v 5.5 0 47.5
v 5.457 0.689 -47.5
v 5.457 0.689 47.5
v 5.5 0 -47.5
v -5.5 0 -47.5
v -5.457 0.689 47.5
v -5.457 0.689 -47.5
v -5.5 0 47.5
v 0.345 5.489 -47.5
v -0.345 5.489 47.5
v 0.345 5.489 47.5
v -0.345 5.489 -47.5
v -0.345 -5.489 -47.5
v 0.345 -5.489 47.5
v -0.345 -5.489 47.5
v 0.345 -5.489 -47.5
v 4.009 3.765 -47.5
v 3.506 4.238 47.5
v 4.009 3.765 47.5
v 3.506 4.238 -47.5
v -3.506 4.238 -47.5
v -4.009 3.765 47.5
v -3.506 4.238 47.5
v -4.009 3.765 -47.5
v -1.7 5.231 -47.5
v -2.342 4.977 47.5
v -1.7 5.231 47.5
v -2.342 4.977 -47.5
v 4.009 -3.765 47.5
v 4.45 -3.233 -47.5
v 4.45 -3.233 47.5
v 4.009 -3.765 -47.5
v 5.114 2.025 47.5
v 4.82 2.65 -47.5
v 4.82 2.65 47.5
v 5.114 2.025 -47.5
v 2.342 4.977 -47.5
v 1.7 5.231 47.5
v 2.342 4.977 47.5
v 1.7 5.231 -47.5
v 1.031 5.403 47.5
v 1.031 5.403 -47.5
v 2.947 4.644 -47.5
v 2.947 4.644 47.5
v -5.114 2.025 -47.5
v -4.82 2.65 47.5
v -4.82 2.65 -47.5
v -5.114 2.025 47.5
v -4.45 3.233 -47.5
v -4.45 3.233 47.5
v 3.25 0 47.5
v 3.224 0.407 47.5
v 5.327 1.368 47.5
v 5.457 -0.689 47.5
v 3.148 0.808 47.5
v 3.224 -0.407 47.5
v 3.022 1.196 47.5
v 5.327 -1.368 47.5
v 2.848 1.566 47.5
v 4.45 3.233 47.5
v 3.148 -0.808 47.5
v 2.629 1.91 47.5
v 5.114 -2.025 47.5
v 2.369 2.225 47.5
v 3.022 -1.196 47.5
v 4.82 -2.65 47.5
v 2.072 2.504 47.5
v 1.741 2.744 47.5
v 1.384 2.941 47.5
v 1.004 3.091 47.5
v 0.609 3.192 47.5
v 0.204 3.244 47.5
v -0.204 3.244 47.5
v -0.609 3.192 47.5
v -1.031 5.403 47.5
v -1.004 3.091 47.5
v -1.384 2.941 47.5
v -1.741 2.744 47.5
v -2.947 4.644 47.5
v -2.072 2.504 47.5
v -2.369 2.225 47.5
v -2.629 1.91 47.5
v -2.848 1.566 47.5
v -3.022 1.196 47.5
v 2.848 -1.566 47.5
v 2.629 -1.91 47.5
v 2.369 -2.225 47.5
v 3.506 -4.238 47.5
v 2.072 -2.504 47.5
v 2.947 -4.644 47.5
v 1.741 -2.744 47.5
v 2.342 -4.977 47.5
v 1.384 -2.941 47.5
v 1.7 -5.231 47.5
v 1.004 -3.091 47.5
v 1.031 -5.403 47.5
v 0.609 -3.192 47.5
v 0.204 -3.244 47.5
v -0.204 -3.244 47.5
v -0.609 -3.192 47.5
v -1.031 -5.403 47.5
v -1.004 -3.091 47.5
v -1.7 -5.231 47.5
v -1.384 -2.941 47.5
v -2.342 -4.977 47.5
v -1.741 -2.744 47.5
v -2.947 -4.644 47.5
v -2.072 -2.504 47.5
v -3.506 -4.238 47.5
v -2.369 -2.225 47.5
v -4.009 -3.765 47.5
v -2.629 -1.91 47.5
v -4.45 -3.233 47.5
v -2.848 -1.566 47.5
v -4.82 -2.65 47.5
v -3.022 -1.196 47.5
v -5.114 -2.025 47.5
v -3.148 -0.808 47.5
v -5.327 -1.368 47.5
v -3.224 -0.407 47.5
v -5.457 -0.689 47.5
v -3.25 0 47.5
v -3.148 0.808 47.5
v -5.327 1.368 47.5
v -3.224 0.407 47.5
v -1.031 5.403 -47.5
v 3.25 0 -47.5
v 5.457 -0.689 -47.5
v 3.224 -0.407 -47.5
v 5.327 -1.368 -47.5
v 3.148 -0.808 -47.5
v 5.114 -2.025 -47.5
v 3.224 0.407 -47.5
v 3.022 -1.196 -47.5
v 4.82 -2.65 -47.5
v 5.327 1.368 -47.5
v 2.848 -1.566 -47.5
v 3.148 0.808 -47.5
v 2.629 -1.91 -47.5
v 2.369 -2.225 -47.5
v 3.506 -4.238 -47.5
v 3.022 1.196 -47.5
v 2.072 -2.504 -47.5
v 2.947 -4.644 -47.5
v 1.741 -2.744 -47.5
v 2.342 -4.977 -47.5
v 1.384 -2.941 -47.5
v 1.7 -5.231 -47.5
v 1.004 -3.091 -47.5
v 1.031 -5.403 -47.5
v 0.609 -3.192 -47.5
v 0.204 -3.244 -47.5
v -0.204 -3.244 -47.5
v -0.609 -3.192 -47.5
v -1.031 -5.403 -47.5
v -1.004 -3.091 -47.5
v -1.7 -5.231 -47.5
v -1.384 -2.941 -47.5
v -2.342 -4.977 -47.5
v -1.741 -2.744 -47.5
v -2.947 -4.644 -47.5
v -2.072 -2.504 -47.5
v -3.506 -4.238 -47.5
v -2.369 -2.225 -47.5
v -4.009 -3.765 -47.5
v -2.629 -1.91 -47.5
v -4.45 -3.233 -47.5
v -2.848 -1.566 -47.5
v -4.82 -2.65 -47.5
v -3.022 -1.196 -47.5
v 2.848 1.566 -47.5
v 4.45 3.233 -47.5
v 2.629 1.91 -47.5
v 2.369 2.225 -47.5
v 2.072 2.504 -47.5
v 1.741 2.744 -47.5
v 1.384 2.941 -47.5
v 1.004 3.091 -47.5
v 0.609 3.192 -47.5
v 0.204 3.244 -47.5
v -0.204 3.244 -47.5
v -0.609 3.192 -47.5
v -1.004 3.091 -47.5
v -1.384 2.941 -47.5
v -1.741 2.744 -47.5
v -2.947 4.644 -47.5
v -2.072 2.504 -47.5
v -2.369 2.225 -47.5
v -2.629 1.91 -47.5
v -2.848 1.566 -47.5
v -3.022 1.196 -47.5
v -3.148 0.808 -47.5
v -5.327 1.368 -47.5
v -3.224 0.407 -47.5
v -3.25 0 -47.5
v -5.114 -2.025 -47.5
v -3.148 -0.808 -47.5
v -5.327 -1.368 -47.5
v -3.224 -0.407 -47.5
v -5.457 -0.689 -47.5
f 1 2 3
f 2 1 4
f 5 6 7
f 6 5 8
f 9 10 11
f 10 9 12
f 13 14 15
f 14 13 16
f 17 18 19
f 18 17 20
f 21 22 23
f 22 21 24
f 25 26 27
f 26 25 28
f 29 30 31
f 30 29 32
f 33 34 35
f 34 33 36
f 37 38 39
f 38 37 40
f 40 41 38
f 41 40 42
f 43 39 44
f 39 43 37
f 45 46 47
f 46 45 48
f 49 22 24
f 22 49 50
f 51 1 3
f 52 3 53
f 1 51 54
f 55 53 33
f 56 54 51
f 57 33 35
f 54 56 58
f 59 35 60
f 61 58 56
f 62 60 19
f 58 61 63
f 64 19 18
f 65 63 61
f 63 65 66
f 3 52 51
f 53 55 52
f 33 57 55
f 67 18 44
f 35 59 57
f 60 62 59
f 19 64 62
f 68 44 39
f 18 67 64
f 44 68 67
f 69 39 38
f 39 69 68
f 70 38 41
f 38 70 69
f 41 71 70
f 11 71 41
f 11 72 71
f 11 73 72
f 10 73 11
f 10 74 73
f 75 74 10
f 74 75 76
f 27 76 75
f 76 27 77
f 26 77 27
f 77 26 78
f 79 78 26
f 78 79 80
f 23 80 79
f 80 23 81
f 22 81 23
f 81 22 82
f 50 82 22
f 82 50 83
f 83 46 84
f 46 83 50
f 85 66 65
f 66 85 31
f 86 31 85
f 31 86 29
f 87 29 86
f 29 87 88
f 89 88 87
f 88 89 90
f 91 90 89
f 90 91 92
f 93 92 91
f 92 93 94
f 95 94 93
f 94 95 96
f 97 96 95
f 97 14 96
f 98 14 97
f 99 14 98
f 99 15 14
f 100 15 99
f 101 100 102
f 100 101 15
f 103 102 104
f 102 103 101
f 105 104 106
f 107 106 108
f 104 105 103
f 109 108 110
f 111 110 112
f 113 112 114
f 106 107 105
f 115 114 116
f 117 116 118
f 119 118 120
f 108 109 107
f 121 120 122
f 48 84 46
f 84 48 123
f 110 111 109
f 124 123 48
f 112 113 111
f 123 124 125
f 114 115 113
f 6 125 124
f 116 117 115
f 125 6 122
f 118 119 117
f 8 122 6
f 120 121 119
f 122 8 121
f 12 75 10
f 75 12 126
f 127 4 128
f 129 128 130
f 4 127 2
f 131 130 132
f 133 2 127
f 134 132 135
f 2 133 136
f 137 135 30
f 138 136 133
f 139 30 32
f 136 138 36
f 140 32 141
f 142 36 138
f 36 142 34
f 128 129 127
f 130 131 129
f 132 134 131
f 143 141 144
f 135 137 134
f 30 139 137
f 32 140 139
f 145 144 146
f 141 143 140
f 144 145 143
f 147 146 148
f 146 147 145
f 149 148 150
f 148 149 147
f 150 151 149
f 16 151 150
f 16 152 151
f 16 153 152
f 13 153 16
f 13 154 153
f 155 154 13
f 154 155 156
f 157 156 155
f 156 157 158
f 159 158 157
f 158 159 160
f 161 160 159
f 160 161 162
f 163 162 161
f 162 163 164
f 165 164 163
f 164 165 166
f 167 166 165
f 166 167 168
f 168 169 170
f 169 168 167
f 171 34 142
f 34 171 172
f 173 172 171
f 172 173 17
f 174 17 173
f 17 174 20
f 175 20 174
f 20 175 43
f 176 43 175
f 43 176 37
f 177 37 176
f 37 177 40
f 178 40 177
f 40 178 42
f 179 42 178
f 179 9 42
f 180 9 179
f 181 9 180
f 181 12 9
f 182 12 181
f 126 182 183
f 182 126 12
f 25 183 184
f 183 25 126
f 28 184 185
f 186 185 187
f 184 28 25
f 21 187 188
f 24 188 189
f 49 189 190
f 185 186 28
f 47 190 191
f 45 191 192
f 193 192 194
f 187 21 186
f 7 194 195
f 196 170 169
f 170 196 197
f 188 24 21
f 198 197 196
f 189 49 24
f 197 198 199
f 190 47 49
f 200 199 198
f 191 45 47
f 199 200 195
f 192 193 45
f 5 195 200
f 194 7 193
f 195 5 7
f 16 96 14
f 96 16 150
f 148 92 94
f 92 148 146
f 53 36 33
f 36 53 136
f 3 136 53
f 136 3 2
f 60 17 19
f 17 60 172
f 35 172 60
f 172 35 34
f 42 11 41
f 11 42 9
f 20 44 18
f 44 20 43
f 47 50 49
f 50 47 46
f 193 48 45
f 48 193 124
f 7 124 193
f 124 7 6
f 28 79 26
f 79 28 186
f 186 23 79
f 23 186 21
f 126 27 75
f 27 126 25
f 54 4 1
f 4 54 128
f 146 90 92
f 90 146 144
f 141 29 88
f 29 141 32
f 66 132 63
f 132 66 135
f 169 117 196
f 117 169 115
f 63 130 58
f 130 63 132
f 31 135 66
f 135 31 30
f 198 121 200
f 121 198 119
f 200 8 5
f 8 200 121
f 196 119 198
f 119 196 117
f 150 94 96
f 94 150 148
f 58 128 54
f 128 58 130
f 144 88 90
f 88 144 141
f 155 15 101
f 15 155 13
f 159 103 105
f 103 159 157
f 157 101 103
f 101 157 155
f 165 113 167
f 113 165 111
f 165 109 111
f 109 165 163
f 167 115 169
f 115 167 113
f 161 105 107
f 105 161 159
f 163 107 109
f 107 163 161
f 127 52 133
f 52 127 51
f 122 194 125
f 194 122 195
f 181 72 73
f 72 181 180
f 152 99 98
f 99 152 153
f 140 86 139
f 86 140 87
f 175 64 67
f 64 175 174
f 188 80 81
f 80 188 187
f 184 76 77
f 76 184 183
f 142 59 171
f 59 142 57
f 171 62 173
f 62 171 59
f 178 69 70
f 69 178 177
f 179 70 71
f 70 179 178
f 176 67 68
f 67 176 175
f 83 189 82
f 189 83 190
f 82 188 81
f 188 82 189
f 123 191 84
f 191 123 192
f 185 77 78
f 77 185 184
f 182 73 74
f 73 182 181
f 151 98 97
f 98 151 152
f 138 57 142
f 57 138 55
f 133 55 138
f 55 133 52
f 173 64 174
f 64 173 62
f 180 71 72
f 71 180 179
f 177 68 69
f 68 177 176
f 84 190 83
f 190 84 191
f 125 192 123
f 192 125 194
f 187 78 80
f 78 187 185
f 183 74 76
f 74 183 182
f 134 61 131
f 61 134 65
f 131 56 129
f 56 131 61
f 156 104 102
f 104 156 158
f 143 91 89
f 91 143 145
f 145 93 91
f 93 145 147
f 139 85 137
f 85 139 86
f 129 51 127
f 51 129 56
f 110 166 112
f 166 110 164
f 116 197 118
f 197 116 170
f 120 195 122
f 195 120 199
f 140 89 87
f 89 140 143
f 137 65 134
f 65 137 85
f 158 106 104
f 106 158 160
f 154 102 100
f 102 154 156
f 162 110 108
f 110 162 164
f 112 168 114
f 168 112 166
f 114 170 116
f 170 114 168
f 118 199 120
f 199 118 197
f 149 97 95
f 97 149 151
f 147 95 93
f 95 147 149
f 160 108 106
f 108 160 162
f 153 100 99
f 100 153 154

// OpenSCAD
$fn = 50;


difference() {
	union() {
		translate(v = [0, 0, -47.5000000000]) {
			cylinder(h = 95, r = 5.5000000000);
		}
	}
	union() {
		translate(v = [0, 0, -100.0000000000]) {
			cylinder(h = 200, r = 3.2500000000);
		}
	}
}
